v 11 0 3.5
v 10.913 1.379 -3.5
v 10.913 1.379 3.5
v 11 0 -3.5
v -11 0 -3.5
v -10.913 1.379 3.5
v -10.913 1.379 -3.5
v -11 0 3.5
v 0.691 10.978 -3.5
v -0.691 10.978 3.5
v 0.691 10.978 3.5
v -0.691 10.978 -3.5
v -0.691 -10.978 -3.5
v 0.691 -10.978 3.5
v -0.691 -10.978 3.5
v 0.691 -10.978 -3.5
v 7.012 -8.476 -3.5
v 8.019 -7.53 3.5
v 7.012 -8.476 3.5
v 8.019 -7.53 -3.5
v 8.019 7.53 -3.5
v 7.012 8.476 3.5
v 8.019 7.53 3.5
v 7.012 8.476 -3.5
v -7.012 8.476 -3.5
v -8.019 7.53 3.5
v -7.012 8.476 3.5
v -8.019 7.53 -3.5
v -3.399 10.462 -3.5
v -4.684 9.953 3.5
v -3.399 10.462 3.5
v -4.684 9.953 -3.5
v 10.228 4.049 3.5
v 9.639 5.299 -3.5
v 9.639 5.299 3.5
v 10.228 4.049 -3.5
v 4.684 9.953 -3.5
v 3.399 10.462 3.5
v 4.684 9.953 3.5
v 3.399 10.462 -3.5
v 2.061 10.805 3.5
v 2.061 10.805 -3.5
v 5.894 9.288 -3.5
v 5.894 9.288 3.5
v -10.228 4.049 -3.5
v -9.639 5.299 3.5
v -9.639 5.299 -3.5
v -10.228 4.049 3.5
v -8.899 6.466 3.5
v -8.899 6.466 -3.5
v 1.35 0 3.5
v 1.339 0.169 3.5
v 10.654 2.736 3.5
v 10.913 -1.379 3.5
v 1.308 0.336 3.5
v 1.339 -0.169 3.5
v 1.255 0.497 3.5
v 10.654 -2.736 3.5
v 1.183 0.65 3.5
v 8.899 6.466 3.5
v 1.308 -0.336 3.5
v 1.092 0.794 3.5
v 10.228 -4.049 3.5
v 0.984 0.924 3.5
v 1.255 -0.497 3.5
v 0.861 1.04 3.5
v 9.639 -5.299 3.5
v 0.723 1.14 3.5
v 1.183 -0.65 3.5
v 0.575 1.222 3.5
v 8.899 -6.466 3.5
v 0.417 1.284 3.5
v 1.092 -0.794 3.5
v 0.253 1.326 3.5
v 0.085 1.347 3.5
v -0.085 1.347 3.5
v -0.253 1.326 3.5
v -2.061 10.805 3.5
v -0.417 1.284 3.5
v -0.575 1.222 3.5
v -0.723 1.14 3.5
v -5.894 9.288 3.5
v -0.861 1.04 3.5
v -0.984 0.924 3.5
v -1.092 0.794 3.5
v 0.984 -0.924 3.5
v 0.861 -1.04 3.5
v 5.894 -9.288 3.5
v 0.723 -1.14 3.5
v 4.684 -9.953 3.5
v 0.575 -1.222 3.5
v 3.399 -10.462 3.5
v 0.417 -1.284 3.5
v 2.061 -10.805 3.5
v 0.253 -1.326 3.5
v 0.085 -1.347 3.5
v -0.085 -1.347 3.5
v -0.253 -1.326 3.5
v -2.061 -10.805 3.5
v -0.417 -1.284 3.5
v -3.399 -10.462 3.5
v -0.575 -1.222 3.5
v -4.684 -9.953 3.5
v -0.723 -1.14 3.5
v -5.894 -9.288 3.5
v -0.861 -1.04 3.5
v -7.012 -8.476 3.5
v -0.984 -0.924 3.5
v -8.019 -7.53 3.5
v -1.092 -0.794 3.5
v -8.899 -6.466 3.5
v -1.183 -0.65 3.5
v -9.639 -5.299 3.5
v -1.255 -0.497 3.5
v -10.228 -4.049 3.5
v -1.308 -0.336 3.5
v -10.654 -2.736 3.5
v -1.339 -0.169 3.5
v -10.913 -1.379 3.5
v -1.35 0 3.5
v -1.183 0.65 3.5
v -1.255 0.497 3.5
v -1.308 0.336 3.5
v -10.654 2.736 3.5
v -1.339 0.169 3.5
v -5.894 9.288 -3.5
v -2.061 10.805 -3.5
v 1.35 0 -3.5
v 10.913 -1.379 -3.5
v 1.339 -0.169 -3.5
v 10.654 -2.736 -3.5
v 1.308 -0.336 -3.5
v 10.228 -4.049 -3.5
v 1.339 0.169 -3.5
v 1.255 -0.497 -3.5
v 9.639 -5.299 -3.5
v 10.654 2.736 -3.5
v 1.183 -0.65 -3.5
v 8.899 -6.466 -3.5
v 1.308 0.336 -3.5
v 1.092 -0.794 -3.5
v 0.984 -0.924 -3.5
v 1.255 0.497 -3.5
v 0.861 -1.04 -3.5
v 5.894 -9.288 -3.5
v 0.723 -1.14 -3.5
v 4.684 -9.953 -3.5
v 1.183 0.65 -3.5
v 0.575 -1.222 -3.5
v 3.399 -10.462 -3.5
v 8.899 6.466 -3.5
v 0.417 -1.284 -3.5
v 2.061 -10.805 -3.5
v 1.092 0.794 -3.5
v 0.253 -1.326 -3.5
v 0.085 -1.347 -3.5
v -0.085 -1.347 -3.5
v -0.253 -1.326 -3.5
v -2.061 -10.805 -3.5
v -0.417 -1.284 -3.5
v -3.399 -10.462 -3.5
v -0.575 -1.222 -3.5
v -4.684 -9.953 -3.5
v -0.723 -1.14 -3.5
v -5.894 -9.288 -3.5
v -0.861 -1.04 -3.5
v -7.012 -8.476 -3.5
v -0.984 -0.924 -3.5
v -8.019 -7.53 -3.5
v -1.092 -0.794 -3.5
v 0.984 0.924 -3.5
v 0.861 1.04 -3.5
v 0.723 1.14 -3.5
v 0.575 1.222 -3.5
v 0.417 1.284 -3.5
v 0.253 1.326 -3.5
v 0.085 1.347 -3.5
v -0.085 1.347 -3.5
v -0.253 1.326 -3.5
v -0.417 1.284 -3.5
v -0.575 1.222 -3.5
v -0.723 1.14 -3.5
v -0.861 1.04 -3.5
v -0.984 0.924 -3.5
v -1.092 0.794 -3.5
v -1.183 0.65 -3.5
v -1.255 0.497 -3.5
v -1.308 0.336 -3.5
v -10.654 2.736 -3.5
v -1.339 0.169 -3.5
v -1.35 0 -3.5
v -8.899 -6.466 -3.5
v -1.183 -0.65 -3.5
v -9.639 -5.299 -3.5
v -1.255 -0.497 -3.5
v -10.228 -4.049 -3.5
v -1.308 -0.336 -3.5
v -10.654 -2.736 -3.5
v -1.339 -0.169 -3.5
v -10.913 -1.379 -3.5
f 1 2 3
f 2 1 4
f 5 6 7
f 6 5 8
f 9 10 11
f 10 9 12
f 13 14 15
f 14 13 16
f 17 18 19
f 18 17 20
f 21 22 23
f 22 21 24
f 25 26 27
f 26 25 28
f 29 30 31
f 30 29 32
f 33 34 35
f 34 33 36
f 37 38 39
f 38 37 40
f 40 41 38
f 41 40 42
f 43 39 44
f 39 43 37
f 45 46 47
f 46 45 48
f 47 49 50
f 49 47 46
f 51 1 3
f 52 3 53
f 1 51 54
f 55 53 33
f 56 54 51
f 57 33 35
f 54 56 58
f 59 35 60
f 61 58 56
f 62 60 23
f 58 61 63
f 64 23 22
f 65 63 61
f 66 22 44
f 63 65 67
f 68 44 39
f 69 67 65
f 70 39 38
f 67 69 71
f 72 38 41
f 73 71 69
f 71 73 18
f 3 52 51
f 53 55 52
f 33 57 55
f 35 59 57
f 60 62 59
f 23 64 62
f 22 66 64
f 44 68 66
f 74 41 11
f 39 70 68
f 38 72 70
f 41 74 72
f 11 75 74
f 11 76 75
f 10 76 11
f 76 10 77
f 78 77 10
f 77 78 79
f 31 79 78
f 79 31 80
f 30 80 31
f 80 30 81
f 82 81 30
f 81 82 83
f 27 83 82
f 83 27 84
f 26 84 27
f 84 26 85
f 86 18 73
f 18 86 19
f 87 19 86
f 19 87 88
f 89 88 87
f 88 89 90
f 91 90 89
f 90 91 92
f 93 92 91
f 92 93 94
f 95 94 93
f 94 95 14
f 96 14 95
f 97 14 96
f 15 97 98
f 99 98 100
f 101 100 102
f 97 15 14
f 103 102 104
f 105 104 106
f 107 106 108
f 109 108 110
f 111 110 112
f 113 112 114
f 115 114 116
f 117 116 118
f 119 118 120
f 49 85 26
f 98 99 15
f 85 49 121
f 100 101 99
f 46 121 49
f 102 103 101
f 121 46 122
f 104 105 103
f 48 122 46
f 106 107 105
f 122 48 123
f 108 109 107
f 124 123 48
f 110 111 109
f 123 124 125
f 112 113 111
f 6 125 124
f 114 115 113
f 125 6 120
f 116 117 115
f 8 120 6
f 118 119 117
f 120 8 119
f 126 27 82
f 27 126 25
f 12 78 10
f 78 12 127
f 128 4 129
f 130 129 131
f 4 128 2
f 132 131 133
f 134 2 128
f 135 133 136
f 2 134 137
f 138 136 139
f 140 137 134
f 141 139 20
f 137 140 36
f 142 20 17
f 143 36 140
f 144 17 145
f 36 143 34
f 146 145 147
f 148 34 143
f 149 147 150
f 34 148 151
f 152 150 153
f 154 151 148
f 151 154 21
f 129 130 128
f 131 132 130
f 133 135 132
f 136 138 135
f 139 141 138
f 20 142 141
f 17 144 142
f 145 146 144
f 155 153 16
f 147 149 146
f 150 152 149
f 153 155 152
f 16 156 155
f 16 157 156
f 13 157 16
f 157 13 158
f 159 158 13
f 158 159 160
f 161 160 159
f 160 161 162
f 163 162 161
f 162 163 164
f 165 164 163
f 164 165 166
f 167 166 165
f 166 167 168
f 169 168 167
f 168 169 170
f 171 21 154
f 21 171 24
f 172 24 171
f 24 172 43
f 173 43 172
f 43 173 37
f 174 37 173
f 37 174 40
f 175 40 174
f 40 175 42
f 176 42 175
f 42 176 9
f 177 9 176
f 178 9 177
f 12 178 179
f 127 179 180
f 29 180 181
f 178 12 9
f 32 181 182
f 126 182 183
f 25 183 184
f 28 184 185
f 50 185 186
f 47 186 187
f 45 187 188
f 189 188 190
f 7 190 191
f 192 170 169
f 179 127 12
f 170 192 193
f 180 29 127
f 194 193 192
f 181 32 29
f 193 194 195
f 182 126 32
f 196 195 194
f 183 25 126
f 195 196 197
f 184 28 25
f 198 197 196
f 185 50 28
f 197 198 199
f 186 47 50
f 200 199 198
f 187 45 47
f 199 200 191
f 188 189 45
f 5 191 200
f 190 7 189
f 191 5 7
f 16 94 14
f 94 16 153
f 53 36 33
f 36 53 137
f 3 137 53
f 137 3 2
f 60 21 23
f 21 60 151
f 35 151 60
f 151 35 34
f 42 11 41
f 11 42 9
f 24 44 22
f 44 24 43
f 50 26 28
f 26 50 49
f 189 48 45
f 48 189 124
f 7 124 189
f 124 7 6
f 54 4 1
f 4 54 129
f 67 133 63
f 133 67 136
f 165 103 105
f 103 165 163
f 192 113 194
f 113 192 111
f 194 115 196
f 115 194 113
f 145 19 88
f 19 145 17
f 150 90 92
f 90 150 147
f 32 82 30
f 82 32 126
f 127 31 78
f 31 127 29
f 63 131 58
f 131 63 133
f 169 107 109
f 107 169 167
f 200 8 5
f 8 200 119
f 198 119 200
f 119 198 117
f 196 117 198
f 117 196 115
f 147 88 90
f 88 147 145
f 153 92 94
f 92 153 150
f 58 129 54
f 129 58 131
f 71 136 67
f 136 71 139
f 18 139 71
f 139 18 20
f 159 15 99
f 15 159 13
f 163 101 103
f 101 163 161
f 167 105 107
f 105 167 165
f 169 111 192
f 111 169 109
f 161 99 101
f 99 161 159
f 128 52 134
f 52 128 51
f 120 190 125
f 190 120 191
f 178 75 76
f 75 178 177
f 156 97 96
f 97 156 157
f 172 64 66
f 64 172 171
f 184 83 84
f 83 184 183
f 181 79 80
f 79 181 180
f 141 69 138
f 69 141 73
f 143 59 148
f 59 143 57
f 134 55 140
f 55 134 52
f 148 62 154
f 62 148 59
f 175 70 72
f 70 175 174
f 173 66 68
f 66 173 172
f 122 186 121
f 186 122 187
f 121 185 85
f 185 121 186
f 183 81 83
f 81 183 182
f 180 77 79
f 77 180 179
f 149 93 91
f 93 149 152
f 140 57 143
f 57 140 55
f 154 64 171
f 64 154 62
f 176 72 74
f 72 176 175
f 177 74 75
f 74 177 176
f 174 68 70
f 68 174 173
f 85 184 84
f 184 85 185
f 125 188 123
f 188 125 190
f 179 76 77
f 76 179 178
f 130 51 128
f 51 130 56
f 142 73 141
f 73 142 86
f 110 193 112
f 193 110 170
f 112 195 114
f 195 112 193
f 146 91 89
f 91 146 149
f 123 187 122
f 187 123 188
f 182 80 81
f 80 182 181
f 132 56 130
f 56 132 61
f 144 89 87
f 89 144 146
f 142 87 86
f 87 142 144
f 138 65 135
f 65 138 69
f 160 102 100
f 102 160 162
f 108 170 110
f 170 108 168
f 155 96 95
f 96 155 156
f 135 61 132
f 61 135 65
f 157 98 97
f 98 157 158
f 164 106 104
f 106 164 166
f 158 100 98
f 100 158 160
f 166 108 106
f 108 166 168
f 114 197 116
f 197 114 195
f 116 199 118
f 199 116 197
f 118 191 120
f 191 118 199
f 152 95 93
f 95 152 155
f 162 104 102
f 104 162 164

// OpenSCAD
$fn = 50;


difference() {
	union() {
		translate(v = [0, 0, -3.5000000000]) {
			cylinder(h = 7, r = 11.0000000000);
		}
	}
	union() {
		translate(v = [0, 0, -100.0000000000]) {
			cylinder(h = 200, r = 1.3500000000);
		}
	}
}
